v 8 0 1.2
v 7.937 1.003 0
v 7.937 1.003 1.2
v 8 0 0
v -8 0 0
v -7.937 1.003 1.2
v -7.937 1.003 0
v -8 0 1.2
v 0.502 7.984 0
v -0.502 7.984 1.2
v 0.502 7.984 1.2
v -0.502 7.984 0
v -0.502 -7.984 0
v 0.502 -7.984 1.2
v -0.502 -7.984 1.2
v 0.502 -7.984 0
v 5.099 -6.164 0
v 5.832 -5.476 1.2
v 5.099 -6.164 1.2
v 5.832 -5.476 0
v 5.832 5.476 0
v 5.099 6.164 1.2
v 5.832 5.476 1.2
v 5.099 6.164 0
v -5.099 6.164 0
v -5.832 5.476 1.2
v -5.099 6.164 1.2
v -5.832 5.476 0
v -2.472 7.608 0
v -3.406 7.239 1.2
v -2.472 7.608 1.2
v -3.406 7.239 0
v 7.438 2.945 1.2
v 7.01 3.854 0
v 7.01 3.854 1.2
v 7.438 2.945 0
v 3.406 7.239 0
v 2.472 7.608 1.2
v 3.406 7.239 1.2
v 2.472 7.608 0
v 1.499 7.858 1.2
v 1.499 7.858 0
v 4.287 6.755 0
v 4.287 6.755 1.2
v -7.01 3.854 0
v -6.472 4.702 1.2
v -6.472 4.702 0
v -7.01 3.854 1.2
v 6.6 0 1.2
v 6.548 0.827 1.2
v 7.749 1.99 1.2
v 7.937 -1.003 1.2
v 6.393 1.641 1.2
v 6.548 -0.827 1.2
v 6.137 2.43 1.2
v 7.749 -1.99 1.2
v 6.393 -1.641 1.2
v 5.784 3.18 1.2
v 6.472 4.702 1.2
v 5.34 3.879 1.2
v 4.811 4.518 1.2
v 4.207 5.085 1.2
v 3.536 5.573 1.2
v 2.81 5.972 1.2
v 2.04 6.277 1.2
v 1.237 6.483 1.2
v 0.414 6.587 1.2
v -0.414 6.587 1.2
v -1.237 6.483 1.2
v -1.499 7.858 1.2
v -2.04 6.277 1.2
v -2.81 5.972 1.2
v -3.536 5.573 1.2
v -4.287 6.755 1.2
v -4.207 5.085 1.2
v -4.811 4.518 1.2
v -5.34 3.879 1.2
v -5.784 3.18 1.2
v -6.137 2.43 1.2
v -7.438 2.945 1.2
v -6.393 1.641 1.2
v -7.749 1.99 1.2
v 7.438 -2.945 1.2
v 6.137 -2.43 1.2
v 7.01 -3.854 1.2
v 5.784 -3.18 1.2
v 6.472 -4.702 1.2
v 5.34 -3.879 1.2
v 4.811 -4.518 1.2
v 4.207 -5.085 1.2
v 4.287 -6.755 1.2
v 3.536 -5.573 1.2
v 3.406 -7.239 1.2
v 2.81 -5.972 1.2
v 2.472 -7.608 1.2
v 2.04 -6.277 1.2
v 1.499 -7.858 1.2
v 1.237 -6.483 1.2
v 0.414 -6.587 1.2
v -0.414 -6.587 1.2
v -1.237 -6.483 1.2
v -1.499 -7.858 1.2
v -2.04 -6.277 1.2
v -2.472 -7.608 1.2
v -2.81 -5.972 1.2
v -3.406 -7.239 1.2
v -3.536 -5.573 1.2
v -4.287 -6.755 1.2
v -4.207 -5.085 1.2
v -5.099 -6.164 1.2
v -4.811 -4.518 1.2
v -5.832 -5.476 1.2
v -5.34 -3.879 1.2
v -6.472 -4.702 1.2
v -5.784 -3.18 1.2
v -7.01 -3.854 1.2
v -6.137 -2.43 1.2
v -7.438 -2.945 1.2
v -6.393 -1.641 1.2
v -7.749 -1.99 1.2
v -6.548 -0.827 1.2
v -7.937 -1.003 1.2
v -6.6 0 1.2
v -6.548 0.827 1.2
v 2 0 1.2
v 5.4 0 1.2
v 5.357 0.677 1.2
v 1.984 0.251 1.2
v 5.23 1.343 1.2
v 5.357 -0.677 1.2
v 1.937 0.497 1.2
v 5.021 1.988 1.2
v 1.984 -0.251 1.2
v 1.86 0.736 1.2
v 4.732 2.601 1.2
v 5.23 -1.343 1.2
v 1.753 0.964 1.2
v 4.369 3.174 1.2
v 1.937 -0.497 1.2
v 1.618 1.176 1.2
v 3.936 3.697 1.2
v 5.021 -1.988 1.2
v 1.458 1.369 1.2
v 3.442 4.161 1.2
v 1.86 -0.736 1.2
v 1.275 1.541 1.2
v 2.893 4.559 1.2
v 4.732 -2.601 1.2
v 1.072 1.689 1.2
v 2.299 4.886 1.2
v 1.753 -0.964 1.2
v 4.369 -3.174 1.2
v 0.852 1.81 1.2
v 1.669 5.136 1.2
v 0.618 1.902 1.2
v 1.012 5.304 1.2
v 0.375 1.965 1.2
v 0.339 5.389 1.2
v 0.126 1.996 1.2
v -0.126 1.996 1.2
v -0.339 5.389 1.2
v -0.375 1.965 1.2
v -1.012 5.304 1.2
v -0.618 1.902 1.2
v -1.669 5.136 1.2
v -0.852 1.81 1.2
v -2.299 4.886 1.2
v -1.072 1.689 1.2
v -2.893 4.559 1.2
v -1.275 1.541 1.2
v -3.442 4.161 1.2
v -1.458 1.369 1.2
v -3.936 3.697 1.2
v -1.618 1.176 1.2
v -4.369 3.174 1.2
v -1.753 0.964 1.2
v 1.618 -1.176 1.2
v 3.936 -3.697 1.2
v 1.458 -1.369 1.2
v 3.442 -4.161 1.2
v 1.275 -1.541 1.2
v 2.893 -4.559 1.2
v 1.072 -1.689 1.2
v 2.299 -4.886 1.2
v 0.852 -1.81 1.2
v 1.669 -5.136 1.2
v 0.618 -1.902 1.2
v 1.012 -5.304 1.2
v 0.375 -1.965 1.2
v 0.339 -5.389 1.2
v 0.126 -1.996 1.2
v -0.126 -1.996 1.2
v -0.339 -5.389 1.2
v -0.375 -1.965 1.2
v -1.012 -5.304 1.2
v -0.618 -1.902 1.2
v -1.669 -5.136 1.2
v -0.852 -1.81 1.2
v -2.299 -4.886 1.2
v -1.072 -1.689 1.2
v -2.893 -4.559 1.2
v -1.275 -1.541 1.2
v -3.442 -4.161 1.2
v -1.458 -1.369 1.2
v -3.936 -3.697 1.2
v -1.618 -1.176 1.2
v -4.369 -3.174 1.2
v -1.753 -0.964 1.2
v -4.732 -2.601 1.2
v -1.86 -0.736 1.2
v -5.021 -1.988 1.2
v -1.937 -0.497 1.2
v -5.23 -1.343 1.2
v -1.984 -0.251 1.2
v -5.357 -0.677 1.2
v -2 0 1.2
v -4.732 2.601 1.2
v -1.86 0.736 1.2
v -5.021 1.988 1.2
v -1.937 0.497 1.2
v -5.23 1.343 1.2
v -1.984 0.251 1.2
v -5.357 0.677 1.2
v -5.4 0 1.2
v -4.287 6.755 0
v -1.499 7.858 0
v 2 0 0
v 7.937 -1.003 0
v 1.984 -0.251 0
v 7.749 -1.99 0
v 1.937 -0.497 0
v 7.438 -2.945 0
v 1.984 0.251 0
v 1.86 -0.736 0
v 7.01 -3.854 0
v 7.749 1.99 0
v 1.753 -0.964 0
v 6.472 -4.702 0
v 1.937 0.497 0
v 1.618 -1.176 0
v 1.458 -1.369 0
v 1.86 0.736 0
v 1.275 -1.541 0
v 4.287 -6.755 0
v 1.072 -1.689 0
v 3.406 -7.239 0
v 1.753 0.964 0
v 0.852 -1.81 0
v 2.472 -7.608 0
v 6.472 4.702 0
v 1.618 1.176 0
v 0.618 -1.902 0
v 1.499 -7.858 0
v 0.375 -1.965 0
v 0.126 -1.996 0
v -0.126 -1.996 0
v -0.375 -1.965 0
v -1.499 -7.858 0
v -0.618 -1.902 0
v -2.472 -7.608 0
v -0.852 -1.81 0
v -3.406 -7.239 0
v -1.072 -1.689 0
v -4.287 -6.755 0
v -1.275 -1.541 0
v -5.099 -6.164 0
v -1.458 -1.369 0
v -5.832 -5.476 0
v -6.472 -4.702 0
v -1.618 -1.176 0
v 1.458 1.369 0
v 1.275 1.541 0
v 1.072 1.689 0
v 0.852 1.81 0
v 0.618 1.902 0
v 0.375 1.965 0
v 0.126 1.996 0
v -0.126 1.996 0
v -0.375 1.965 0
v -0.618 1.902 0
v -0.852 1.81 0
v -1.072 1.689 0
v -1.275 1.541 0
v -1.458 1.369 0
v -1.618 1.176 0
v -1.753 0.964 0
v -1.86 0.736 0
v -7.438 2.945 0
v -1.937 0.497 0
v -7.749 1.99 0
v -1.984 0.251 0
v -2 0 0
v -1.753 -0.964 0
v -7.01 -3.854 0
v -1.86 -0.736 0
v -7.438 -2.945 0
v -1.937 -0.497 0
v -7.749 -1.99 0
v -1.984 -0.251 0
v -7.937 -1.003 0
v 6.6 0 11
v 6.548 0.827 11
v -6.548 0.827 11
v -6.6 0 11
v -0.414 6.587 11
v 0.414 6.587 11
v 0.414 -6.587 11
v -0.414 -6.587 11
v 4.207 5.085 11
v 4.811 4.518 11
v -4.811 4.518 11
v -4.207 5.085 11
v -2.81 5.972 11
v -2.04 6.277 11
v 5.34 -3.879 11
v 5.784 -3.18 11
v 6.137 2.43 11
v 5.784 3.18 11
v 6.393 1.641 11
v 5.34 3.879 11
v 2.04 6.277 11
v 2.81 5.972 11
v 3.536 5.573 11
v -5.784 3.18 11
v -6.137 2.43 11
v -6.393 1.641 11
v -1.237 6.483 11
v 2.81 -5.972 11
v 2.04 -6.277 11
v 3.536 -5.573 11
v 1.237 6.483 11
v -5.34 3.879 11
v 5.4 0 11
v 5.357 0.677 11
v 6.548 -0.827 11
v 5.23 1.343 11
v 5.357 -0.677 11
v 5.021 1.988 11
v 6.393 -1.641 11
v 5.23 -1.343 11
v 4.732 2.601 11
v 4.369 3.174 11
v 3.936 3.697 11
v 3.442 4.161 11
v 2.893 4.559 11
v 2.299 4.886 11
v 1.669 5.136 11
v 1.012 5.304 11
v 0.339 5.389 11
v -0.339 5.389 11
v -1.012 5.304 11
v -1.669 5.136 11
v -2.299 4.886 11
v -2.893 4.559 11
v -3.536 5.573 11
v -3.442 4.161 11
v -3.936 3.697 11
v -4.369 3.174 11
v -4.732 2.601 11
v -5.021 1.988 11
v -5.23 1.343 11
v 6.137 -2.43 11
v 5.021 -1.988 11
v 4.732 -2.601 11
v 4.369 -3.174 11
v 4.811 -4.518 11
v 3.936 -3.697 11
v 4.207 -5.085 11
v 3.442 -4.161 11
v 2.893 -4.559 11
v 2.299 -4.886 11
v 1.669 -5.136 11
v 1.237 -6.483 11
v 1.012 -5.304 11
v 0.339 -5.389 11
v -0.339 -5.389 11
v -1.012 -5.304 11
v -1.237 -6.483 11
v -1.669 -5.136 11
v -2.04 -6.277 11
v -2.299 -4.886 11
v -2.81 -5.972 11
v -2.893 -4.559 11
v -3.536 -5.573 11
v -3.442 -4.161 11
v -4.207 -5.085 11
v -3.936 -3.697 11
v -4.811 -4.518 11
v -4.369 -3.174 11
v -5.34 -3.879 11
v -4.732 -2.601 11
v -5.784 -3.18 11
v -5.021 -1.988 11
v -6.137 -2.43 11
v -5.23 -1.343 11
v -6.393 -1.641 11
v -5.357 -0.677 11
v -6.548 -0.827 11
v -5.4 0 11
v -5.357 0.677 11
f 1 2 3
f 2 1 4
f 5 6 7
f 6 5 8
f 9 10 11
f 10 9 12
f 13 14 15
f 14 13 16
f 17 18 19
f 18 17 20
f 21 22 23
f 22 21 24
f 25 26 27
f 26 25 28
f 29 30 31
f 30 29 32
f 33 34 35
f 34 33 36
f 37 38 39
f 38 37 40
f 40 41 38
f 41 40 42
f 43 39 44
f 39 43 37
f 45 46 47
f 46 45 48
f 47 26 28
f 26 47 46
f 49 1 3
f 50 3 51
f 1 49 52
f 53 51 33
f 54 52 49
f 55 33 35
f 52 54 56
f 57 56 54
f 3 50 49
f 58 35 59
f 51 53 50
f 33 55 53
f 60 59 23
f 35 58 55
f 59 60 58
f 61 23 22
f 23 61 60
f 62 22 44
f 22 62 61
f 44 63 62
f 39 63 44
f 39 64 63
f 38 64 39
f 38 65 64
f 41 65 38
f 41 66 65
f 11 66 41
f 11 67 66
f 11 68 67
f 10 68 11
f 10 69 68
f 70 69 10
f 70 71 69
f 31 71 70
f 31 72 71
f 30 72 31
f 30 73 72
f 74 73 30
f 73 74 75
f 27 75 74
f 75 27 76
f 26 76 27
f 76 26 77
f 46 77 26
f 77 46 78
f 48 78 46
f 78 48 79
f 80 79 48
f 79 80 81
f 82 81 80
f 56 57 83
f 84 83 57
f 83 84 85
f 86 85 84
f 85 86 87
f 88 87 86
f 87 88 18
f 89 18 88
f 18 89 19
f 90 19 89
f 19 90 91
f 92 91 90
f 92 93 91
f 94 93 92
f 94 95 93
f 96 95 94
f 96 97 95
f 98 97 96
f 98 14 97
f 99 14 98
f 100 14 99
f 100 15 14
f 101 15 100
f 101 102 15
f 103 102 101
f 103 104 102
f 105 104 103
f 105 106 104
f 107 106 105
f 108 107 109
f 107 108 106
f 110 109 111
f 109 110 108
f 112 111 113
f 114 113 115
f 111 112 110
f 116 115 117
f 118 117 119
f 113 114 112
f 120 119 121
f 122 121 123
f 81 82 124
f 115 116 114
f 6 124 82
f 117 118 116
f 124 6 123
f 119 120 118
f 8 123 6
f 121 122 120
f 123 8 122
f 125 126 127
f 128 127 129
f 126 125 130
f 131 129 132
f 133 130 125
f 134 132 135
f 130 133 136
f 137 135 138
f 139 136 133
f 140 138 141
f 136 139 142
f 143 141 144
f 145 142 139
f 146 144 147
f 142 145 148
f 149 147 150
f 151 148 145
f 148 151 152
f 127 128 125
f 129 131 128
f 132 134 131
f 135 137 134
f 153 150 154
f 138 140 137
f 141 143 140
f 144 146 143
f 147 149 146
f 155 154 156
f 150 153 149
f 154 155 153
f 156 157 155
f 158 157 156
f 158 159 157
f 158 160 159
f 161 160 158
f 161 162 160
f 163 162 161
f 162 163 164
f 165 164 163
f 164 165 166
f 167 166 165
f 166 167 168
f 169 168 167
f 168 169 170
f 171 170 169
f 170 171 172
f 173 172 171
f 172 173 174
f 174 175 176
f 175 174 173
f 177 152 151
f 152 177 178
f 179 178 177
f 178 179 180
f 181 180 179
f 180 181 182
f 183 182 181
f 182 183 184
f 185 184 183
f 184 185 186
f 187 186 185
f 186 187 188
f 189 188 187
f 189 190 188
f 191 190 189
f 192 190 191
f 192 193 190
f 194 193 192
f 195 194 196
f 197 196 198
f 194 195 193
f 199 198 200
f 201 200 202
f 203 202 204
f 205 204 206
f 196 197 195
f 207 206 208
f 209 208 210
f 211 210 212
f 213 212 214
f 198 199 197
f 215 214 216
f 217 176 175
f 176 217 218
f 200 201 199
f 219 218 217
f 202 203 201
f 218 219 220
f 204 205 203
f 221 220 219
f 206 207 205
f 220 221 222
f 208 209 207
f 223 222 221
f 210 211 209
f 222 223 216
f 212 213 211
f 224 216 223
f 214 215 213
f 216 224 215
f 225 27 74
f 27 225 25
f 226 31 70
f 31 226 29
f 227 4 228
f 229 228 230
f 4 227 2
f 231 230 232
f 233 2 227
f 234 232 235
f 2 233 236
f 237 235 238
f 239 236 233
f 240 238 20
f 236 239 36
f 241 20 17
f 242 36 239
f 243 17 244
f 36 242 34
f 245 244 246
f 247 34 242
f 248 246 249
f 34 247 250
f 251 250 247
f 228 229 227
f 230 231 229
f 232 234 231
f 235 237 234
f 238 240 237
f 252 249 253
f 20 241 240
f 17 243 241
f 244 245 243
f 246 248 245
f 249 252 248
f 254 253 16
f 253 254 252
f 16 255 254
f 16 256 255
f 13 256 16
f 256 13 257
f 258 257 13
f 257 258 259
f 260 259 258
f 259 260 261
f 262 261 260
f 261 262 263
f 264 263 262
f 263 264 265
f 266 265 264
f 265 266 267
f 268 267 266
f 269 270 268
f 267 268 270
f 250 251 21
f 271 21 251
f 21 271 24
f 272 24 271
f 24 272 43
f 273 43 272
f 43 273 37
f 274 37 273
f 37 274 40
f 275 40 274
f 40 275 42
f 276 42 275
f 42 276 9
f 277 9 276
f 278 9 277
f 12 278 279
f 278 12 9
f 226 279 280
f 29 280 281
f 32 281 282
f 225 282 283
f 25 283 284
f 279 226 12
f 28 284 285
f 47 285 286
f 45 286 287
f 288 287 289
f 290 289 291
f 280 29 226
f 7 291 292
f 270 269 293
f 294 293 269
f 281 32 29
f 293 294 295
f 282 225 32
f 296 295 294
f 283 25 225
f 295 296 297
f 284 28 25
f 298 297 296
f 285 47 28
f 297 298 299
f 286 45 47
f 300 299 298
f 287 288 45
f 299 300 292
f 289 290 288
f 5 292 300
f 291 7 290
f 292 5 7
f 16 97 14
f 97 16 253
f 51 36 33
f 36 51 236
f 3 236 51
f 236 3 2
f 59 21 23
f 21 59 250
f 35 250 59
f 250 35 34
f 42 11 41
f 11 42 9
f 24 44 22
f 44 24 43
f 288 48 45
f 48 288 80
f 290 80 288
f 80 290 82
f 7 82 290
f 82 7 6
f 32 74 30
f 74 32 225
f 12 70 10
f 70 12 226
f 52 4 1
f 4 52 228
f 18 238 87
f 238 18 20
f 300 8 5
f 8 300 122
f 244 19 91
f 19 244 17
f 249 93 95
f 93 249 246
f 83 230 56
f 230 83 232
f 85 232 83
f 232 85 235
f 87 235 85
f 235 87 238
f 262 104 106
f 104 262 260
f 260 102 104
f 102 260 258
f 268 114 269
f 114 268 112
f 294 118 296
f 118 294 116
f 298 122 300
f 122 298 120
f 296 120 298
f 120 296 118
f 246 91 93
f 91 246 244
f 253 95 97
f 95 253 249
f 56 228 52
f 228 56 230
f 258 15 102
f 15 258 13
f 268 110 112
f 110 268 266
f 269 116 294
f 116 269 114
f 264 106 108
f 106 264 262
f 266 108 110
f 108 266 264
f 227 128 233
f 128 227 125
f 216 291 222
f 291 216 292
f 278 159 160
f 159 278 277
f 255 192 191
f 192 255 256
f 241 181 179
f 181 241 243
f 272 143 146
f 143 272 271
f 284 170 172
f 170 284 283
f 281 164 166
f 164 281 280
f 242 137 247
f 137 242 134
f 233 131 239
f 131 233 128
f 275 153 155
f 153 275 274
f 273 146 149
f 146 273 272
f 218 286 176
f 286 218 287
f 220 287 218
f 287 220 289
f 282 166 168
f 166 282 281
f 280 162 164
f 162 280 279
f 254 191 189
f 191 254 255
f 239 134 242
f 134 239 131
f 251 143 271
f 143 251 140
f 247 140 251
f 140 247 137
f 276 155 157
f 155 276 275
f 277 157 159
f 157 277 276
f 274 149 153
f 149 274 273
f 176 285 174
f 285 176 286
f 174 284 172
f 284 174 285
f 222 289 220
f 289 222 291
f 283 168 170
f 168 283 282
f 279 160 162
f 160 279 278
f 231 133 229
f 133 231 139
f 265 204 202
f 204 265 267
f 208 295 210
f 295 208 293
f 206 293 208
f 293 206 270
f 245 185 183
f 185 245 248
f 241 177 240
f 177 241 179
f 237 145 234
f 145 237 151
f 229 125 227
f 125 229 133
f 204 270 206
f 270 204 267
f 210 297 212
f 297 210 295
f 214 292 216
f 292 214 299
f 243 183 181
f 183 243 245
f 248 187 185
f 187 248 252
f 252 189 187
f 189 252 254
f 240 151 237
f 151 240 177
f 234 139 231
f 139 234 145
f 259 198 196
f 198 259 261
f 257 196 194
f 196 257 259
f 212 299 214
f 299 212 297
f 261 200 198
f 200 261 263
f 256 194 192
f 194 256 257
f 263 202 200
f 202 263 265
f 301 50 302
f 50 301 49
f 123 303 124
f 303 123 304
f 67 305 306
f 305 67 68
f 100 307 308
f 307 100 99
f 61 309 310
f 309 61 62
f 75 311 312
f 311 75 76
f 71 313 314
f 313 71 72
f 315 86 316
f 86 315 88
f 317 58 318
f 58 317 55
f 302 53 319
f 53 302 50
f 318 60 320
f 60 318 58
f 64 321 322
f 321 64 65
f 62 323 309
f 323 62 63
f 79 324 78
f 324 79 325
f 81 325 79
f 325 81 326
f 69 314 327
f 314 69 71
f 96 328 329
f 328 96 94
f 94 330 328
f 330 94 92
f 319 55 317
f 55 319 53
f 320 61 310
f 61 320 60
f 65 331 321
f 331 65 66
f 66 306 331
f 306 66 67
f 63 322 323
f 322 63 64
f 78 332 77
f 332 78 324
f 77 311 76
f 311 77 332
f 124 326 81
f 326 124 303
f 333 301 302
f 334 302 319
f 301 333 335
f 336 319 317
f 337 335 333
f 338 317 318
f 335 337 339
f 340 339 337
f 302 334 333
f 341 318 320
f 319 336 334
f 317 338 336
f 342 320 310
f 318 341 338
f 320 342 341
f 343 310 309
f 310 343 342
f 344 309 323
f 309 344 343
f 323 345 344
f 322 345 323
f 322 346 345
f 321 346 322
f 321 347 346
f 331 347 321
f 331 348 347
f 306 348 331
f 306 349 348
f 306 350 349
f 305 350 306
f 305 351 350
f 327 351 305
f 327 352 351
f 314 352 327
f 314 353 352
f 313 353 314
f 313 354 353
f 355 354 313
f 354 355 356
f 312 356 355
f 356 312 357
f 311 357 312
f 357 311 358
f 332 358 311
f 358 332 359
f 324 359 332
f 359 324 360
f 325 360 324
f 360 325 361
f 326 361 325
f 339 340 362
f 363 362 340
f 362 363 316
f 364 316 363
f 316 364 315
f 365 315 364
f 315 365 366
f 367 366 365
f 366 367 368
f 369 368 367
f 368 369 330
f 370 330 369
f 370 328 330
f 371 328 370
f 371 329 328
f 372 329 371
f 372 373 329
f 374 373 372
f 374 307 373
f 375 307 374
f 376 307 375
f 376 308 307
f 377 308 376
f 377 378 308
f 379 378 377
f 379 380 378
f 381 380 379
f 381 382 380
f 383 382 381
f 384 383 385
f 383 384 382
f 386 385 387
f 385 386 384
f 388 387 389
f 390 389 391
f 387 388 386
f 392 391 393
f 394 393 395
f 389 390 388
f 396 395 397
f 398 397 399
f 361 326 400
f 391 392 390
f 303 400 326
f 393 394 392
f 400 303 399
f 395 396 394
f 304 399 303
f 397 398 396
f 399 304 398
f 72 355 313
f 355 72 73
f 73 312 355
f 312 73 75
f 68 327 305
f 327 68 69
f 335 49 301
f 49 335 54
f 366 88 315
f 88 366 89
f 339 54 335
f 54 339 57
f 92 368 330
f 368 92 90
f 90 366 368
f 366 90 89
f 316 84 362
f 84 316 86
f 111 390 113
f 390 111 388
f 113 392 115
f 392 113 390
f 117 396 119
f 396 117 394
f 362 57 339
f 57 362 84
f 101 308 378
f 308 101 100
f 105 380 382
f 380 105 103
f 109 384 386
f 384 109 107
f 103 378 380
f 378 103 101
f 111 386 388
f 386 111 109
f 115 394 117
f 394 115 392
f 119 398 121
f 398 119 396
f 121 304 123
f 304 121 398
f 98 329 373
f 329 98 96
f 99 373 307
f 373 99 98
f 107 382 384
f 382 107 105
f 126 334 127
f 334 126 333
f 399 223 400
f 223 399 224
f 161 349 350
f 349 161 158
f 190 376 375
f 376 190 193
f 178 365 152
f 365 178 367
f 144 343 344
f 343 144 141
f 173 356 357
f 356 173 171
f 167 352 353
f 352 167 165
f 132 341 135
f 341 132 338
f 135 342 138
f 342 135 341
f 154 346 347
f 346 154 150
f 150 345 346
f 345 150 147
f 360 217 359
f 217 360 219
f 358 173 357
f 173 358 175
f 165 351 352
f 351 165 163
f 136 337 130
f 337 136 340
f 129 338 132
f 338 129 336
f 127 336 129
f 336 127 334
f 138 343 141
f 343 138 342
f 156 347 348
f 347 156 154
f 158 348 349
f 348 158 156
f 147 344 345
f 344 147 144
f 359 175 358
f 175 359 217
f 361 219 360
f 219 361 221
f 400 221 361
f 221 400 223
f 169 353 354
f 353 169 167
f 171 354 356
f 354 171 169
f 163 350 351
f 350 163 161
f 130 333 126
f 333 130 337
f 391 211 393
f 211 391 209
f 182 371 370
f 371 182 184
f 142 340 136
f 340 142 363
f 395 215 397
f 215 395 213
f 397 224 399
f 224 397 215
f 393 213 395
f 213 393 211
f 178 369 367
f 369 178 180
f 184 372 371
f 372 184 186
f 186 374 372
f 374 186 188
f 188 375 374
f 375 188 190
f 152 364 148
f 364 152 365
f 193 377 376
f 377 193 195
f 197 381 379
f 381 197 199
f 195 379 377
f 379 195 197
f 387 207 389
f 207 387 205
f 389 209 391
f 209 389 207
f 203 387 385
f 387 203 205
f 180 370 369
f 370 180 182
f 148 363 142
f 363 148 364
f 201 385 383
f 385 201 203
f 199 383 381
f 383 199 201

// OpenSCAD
wall = 1.2;
height = 10;
innerDia = 10.8;
outerDia = 16;
wallZ = 1;
$fn=50;

difference() {
    cylinder(d=outerDia,h=wall,$fn=$fn);
    translate([0,0,-1]) cylinder(d=4,h=wall+2,$fn=$fn);
}

translate([0,0,wallZ]) difference() {
    cylinder(d=innerDia+wall*2,h=height,$fn=$fn);
    translate([0,0,-1]) cylinder(d=innerDia,h=height+2,$fn=$fn);
}
